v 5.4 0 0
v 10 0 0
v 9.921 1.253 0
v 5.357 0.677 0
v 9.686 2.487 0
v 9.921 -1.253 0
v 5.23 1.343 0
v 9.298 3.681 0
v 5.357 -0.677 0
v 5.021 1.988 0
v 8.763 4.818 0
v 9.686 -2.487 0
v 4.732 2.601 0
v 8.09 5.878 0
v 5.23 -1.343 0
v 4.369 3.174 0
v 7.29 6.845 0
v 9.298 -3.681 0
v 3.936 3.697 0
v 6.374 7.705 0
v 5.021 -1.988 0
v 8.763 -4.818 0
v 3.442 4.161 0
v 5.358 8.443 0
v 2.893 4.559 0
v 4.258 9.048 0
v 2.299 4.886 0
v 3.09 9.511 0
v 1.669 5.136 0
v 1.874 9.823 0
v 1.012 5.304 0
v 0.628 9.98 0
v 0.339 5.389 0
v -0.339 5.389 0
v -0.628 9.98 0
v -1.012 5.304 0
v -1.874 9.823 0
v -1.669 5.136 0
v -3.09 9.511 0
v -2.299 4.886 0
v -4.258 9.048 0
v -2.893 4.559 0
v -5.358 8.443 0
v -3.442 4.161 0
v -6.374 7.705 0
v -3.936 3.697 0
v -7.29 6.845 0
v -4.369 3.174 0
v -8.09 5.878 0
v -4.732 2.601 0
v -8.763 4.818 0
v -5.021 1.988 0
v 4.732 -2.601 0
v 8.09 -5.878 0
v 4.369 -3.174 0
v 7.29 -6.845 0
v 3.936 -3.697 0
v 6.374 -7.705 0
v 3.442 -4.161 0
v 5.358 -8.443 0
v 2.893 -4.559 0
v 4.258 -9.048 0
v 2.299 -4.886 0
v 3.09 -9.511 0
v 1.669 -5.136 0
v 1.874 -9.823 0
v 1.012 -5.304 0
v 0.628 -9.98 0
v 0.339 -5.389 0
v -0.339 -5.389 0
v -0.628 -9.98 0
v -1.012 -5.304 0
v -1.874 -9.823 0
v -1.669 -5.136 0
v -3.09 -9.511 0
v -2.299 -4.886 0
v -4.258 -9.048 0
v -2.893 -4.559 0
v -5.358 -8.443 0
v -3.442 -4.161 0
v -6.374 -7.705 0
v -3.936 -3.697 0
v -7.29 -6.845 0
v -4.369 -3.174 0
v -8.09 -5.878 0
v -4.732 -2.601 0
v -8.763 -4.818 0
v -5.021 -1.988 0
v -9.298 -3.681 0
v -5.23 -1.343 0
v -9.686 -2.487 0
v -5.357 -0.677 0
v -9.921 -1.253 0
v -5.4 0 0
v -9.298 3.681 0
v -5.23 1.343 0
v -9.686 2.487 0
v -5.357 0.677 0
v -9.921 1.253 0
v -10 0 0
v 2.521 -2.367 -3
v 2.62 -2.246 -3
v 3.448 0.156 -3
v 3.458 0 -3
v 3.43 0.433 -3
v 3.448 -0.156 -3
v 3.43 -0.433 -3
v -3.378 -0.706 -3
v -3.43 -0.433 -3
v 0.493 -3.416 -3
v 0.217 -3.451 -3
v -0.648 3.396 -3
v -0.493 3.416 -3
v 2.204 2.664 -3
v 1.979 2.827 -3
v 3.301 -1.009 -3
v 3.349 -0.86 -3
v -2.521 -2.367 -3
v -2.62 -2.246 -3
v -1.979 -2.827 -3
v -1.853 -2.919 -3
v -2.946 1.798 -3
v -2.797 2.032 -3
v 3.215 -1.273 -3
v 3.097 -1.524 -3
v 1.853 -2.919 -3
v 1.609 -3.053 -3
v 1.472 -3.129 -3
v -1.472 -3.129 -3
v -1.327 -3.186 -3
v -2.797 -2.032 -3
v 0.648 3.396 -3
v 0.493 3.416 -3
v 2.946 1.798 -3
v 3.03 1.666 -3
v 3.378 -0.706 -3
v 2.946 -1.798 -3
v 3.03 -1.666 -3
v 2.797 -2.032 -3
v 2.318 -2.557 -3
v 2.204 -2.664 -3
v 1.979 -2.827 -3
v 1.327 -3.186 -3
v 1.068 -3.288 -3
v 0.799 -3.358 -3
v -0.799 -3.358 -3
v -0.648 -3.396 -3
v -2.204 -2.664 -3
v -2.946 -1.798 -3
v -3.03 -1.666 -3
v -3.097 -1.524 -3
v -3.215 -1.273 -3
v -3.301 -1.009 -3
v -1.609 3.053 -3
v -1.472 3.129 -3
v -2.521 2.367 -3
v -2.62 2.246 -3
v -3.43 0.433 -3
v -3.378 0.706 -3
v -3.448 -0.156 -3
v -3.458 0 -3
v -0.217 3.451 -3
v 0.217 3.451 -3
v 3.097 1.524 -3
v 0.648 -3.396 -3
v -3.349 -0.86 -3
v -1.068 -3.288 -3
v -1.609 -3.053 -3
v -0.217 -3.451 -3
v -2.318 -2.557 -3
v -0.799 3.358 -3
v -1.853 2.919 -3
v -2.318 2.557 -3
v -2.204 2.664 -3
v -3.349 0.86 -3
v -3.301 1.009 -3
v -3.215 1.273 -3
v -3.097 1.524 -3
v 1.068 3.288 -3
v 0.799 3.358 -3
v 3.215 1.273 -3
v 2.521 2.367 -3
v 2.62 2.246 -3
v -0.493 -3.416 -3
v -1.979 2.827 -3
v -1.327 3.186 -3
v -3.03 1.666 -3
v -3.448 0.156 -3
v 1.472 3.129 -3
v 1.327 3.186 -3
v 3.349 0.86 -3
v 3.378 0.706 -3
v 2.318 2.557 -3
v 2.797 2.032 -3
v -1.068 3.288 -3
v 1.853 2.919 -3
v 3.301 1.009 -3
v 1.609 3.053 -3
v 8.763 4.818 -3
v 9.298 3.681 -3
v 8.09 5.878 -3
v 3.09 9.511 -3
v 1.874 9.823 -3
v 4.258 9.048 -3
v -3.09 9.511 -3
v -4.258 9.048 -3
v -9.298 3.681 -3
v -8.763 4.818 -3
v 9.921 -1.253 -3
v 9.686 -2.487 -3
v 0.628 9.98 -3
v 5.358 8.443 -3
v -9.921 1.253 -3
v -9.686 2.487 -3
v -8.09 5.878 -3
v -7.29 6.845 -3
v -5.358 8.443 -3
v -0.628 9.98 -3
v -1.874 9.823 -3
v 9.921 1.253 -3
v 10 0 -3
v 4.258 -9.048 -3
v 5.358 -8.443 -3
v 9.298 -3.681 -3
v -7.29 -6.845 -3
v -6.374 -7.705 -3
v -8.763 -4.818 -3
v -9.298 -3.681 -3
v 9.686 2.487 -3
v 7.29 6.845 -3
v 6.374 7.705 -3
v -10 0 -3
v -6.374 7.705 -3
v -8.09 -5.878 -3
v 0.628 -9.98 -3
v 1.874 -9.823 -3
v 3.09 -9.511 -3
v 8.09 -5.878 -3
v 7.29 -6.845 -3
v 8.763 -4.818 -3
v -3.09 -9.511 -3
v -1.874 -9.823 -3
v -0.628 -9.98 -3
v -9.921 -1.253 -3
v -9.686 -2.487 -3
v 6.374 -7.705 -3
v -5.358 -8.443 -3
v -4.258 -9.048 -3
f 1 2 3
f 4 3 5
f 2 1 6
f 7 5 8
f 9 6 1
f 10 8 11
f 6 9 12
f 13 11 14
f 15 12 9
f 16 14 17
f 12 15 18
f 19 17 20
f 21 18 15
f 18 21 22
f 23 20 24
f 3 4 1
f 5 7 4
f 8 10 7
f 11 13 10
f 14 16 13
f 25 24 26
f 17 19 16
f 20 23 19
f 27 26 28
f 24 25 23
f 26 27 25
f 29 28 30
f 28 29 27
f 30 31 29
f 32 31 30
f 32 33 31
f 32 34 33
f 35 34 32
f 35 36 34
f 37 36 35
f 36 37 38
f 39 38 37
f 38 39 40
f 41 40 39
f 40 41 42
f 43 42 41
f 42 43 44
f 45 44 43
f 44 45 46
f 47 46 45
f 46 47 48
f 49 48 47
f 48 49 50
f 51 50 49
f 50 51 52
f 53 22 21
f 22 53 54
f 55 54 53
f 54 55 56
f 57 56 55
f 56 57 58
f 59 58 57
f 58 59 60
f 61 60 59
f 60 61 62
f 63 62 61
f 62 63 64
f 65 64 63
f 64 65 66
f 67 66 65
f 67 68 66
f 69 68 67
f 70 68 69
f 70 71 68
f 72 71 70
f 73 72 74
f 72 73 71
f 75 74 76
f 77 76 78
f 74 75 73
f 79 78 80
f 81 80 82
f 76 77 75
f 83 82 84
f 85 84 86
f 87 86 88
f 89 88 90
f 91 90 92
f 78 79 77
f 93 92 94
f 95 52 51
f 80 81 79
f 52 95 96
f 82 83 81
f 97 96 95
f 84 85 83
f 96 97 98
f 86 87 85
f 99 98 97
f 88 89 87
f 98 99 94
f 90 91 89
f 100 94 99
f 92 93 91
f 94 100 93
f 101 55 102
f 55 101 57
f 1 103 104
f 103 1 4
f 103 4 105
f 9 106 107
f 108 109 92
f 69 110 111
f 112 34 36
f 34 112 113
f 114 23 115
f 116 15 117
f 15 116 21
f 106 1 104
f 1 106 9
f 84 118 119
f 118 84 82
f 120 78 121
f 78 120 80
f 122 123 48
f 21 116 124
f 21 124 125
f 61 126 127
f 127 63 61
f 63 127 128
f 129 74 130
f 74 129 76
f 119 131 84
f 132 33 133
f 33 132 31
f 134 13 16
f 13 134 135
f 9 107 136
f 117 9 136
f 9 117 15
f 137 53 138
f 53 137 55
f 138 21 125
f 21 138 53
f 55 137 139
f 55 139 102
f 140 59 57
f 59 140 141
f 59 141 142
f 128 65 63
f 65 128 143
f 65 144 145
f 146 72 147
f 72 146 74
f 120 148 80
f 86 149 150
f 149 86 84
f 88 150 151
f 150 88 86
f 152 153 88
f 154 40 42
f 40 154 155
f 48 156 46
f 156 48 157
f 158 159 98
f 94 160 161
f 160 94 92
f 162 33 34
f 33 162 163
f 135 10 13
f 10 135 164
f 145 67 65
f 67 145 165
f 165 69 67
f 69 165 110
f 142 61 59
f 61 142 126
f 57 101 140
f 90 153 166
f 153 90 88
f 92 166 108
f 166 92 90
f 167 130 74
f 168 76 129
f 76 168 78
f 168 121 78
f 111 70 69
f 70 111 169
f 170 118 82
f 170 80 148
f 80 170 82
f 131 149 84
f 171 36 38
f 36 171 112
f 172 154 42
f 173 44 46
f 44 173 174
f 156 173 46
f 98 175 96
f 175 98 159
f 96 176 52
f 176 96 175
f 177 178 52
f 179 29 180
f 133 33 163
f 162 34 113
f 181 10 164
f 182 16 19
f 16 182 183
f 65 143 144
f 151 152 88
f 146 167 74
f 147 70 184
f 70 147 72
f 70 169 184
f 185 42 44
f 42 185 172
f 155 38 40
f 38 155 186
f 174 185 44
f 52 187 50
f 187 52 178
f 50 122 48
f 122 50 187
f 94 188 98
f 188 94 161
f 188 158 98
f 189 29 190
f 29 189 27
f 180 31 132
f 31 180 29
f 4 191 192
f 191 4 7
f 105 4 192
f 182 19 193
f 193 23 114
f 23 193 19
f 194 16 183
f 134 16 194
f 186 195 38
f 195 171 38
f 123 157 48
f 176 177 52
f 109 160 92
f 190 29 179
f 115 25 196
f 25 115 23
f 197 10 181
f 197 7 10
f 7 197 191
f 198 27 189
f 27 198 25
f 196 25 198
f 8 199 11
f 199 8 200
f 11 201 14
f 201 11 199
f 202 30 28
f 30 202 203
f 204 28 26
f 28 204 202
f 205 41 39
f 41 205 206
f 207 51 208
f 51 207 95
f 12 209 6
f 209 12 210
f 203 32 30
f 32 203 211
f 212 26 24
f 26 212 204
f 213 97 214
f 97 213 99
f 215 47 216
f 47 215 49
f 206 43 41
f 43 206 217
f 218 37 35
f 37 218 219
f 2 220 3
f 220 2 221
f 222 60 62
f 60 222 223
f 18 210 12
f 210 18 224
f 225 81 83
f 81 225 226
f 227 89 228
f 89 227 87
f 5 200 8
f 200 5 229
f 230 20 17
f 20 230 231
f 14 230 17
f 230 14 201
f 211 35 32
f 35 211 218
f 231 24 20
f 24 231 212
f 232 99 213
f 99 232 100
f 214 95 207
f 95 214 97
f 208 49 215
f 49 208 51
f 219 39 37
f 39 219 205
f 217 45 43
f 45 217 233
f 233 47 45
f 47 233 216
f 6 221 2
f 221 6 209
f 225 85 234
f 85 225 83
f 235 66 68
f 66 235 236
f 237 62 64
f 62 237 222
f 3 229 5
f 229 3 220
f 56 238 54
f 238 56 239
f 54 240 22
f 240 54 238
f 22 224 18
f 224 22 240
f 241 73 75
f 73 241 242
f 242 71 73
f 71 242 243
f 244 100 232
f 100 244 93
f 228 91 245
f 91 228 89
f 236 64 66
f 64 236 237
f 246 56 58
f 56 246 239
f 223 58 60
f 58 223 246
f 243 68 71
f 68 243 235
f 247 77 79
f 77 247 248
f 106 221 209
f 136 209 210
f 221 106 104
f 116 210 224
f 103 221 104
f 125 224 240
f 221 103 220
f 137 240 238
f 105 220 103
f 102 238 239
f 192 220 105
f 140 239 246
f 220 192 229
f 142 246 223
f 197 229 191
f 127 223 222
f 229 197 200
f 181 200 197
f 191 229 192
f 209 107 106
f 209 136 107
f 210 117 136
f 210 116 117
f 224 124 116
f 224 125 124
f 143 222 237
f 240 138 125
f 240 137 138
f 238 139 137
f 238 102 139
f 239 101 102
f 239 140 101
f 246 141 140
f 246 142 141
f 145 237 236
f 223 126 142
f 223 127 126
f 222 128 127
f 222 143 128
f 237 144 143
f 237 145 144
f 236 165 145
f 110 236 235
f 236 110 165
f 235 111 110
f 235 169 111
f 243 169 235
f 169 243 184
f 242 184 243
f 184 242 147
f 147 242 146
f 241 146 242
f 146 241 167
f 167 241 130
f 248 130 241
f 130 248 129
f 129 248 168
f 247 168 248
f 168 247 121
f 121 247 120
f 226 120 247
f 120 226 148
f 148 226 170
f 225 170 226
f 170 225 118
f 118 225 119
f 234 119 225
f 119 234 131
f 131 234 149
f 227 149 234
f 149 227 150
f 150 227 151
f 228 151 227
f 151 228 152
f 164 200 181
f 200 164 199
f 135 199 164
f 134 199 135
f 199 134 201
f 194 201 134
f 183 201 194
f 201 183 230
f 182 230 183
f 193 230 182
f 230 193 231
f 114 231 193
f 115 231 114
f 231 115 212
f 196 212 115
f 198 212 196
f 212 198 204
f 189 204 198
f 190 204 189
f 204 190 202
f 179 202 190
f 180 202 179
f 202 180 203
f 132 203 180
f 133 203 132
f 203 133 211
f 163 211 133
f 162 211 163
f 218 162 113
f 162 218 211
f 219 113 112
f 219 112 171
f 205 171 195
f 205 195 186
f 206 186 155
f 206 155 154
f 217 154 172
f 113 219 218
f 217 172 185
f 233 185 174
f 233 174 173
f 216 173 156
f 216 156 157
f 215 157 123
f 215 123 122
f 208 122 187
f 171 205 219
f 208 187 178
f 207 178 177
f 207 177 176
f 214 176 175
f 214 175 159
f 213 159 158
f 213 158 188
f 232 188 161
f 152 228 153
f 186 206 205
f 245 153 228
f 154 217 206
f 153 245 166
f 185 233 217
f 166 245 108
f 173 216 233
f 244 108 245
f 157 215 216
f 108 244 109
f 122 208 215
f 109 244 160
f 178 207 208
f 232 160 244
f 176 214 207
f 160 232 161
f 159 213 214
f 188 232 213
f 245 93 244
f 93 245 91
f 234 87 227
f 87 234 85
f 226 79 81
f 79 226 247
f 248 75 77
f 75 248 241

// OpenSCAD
$fn = 50;


difference() {
	union() {
		translate(v = [0, 0, -3.0000000000]) {
			cylinder(h = 3, r = 10.0000000000);
		}
		cylinder(h = 0, r = 13.0000000000);
	}
	union() {
		translate(v = [0, 0, 0]) {
			rotate(a = [0, 0, 0]) {
				difference() {
					union() {
						#translate(v = [0, 0, -3.0000000000]) {
							cylinder(h = 3, r = 2.6000000000);
						}
						#translate(v = [0, 0, -3.9000000000]) {
							cylinder(h = 3.9000000000, r = 10.0000000000, r1 = 2.8750000000, r2 = 5.4000000000);
						}
						#translate(v = [0, 0, -3.0000000000]) {
							cylinder(h = 3, r = 2.8750000000);
						}
						#translate(v = [0, 0, -3.0000000000]) {
							cylinder(h = 3, r = 2.6000000000);
						}
					}
					union();
				}
			}
		}
	}
}
